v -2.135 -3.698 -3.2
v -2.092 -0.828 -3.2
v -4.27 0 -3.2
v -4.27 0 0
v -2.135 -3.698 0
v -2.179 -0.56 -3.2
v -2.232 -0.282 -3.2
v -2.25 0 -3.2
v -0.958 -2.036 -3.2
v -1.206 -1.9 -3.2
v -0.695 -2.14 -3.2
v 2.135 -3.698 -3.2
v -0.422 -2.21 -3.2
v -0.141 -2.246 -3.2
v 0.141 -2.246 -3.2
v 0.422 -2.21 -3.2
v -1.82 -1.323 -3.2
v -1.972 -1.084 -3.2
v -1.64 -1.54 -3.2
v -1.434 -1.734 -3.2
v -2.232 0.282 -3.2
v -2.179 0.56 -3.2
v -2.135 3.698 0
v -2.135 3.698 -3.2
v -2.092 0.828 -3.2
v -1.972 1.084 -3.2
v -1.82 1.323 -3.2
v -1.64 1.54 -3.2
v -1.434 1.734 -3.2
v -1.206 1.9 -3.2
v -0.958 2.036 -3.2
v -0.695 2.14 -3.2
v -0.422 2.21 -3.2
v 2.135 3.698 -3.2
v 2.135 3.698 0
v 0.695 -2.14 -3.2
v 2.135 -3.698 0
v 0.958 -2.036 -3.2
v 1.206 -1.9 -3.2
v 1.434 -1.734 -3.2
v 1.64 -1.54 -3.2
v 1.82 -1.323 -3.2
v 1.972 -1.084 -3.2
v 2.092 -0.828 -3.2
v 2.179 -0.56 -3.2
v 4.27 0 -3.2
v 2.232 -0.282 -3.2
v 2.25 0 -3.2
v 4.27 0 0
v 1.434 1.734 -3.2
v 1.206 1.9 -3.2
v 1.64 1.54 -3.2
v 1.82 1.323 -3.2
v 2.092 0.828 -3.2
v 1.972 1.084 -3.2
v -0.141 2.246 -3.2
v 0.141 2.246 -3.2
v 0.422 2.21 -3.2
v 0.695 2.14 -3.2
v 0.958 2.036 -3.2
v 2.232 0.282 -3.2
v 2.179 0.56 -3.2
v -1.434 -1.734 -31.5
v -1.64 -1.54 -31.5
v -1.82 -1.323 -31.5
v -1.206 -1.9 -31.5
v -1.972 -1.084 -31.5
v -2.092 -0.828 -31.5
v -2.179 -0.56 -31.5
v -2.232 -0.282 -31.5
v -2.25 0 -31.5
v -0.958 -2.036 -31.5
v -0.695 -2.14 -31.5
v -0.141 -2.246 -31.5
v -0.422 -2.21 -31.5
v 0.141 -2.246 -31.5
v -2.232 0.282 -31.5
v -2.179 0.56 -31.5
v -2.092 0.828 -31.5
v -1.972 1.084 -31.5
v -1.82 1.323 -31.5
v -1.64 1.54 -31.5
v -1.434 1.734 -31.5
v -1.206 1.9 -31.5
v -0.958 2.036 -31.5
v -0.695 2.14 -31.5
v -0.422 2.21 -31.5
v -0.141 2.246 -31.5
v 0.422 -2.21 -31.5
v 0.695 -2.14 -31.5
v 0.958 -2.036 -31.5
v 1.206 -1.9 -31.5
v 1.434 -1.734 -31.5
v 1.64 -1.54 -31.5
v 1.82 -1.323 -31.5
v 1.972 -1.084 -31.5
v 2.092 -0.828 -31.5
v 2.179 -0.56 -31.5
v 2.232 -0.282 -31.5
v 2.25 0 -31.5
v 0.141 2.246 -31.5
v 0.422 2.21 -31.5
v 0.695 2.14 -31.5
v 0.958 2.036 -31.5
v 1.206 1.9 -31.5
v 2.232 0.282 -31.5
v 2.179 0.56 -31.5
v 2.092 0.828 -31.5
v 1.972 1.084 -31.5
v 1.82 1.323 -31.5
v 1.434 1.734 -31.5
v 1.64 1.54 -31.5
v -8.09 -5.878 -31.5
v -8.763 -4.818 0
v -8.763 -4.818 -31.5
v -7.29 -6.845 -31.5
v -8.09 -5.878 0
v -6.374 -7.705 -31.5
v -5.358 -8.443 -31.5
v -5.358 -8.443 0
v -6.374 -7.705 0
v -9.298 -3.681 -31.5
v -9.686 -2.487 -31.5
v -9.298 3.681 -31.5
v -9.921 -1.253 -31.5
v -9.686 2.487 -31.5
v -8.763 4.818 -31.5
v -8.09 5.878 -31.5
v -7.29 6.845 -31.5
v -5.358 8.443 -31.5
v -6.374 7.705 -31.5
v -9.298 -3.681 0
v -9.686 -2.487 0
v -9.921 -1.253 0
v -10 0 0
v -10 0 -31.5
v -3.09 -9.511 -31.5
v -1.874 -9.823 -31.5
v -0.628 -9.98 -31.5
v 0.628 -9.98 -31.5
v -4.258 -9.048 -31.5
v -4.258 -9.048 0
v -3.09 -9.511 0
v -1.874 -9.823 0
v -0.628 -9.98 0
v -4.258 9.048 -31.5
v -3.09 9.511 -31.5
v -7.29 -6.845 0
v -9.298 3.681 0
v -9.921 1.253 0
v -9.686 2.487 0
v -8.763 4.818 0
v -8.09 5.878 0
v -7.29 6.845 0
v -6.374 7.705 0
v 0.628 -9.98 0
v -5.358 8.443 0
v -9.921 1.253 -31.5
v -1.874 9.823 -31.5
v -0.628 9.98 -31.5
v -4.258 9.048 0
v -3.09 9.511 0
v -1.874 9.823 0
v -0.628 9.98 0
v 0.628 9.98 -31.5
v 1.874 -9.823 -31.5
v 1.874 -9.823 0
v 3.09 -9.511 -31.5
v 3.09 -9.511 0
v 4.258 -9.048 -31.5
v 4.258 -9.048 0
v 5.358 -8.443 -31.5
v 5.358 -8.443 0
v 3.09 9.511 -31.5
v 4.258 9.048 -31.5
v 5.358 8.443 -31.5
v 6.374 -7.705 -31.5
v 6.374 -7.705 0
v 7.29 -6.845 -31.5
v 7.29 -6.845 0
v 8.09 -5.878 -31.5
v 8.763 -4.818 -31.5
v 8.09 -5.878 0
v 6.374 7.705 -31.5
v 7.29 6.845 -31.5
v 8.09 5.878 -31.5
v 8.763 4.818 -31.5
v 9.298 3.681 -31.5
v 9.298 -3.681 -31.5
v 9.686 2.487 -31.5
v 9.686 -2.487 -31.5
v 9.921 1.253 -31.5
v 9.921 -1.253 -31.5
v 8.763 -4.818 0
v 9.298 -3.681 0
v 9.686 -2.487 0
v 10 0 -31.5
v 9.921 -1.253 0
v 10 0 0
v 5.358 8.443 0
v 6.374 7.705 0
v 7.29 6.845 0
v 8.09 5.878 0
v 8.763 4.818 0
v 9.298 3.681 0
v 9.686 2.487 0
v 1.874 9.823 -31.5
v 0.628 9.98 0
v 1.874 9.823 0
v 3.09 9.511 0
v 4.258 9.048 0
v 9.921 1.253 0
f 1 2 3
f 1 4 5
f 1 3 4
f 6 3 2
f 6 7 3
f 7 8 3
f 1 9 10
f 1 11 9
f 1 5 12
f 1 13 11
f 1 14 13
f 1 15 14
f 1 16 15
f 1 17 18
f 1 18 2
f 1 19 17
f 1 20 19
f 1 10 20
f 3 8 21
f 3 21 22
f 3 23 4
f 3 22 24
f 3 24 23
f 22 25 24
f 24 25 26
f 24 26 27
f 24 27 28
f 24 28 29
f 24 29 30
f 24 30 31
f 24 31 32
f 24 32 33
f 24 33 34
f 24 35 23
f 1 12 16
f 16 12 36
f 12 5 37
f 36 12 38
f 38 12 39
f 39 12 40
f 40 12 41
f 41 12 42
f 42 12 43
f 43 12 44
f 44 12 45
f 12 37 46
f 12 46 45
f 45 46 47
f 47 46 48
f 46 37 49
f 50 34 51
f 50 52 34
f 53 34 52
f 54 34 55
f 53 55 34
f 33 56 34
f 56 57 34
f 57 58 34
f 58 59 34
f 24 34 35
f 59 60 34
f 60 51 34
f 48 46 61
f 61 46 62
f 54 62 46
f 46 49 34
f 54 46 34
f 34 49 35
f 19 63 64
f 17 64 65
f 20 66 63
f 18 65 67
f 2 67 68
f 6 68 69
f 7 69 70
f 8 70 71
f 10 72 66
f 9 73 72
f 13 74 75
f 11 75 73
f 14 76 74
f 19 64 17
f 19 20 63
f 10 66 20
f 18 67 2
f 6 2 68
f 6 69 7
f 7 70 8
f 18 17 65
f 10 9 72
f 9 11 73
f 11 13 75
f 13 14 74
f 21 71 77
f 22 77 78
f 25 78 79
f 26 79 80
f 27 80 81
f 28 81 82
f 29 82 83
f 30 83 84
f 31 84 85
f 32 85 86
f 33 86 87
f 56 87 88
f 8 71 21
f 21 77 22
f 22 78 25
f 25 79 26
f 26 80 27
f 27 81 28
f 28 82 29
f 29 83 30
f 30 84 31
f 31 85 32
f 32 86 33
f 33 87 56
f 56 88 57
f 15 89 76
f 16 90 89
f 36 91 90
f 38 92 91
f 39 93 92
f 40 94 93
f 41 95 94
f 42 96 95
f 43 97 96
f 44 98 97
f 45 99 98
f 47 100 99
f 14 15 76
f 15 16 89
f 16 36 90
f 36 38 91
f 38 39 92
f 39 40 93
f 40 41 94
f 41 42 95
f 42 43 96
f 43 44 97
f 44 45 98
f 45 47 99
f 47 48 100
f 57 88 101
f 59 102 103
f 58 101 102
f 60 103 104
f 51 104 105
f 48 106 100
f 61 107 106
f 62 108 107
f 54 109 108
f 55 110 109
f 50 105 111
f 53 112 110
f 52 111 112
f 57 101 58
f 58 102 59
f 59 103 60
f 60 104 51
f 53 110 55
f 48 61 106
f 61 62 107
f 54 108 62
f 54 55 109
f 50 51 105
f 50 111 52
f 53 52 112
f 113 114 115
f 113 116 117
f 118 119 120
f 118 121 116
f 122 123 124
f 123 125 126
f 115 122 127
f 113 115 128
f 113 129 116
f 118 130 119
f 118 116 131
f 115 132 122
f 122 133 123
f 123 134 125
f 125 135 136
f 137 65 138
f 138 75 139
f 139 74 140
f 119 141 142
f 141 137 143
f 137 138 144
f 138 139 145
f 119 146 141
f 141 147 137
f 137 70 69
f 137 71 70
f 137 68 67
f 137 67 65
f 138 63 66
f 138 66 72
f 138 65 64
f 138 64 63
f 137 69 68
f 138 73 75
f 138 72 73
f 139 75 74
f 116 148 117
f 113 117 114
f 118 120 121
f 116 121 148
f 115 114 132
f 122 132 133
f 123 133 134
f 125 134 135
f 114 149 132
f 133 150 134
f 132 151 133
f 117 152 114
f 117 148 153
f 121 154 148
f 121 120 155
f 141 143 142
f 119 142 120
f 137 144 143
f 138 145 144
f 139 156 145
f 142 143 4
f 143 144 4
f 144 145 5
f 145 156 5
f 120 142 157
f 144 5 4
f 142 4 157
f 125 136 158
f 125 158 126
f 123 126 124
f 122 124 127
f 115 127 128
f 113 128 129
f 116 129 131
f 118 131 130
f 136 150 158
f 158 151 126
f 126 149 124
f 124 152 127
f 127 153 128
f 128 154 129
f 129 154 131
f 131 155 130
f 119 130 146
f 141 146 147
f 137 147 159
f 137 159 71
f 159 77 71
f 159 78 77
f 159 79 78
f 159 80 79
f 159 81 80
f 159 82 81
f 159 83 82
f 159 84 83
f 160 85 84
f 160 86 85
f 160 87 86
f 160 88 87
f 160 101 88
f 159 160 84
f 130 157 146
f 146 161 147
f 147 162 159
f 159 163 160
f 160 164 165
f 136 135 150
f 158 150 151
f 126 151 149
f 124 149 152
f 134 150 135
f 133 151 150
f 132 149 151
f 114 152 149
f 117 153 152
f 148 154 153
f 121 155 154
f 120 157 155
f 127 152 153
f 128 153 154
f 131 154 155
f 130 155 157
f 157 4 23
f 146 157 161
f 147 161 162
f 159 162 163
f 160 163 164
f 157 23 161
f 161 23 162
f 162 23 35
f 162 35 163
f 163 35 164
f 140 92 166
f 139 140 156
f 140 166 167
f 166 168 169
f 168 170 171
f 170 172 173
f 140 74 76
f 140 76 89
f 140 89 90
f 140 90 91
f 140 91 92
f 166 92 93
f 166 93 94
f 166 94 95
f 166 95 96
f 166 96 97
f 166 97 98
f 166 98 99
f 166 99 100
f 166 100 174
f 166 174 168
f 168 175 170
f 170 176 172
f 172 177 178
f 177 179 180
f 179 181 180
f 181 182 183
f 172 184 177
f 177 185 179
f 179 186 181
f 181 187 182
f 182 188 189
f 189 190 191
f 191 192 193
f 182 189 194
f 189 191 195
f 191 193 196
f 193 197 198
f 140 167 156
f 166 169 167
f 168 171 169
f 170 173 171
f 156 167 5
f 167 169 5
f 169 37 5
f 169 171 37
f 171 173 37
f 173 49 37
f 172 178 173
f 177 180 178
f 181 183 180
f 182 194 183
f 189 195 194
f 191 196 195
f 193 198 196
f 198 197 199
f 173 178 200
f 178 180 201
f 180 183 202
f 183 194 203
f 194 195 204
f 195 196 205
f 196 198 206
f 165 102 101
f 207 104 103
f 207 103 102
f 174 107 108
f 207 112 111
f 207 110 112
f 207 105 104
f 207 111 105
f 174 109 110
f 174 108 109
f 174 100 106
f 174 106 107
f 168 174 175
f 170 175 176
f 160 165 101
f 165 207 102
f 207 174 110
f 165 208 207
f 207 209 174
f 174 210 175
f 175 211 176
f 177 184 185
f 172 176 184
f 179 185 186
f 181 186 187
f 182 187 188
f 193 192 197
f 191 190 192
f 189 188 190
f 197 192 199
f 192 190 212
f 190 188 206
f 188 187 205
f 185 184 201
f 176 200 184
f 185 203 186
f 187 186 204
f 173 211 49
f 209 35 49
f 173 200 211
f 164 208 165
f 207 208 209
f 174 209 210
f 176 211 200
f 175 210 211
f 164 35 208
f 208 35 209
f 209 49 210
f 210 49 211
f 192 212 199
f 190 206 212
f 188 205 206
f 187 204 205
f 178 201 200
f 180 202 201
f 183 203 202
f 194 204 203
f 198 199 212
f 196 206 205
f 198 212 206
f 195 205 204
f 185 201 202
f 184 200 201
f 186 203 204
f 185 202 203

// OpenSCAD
$fn = 50;

difference() {
	union() {
		translate(v = [0, 0, -31.5]) {
			cylinder(h = 31.5, r = 10.0);
		}
	}
	union() {
		translate(v = [0, 0, 0]) {
			rotate(a = [0, 0, 0]) {
				difference() {
					union() {
						translate(v = [0, 0, -3.2]) {
							linear_extrude(height = 3.2) {
								polygon(points = [[4.2698, 0.0], [2.1349000000000005, 3.697755269078796], [-2.134899999999999, 3.6977552690787965], [-4.2698, 5.228996902999369e-16], [-2.134900000000002, -3.6977552690787956], [2.1348999999999974, -3.697755269078798]]);
							}
						}
					}
					union();
				}
			}
		}
		#translate(v = [0, 0, -100.0]) {
			cylinder(h = 200, r = 2.25);
		}
	}
}
